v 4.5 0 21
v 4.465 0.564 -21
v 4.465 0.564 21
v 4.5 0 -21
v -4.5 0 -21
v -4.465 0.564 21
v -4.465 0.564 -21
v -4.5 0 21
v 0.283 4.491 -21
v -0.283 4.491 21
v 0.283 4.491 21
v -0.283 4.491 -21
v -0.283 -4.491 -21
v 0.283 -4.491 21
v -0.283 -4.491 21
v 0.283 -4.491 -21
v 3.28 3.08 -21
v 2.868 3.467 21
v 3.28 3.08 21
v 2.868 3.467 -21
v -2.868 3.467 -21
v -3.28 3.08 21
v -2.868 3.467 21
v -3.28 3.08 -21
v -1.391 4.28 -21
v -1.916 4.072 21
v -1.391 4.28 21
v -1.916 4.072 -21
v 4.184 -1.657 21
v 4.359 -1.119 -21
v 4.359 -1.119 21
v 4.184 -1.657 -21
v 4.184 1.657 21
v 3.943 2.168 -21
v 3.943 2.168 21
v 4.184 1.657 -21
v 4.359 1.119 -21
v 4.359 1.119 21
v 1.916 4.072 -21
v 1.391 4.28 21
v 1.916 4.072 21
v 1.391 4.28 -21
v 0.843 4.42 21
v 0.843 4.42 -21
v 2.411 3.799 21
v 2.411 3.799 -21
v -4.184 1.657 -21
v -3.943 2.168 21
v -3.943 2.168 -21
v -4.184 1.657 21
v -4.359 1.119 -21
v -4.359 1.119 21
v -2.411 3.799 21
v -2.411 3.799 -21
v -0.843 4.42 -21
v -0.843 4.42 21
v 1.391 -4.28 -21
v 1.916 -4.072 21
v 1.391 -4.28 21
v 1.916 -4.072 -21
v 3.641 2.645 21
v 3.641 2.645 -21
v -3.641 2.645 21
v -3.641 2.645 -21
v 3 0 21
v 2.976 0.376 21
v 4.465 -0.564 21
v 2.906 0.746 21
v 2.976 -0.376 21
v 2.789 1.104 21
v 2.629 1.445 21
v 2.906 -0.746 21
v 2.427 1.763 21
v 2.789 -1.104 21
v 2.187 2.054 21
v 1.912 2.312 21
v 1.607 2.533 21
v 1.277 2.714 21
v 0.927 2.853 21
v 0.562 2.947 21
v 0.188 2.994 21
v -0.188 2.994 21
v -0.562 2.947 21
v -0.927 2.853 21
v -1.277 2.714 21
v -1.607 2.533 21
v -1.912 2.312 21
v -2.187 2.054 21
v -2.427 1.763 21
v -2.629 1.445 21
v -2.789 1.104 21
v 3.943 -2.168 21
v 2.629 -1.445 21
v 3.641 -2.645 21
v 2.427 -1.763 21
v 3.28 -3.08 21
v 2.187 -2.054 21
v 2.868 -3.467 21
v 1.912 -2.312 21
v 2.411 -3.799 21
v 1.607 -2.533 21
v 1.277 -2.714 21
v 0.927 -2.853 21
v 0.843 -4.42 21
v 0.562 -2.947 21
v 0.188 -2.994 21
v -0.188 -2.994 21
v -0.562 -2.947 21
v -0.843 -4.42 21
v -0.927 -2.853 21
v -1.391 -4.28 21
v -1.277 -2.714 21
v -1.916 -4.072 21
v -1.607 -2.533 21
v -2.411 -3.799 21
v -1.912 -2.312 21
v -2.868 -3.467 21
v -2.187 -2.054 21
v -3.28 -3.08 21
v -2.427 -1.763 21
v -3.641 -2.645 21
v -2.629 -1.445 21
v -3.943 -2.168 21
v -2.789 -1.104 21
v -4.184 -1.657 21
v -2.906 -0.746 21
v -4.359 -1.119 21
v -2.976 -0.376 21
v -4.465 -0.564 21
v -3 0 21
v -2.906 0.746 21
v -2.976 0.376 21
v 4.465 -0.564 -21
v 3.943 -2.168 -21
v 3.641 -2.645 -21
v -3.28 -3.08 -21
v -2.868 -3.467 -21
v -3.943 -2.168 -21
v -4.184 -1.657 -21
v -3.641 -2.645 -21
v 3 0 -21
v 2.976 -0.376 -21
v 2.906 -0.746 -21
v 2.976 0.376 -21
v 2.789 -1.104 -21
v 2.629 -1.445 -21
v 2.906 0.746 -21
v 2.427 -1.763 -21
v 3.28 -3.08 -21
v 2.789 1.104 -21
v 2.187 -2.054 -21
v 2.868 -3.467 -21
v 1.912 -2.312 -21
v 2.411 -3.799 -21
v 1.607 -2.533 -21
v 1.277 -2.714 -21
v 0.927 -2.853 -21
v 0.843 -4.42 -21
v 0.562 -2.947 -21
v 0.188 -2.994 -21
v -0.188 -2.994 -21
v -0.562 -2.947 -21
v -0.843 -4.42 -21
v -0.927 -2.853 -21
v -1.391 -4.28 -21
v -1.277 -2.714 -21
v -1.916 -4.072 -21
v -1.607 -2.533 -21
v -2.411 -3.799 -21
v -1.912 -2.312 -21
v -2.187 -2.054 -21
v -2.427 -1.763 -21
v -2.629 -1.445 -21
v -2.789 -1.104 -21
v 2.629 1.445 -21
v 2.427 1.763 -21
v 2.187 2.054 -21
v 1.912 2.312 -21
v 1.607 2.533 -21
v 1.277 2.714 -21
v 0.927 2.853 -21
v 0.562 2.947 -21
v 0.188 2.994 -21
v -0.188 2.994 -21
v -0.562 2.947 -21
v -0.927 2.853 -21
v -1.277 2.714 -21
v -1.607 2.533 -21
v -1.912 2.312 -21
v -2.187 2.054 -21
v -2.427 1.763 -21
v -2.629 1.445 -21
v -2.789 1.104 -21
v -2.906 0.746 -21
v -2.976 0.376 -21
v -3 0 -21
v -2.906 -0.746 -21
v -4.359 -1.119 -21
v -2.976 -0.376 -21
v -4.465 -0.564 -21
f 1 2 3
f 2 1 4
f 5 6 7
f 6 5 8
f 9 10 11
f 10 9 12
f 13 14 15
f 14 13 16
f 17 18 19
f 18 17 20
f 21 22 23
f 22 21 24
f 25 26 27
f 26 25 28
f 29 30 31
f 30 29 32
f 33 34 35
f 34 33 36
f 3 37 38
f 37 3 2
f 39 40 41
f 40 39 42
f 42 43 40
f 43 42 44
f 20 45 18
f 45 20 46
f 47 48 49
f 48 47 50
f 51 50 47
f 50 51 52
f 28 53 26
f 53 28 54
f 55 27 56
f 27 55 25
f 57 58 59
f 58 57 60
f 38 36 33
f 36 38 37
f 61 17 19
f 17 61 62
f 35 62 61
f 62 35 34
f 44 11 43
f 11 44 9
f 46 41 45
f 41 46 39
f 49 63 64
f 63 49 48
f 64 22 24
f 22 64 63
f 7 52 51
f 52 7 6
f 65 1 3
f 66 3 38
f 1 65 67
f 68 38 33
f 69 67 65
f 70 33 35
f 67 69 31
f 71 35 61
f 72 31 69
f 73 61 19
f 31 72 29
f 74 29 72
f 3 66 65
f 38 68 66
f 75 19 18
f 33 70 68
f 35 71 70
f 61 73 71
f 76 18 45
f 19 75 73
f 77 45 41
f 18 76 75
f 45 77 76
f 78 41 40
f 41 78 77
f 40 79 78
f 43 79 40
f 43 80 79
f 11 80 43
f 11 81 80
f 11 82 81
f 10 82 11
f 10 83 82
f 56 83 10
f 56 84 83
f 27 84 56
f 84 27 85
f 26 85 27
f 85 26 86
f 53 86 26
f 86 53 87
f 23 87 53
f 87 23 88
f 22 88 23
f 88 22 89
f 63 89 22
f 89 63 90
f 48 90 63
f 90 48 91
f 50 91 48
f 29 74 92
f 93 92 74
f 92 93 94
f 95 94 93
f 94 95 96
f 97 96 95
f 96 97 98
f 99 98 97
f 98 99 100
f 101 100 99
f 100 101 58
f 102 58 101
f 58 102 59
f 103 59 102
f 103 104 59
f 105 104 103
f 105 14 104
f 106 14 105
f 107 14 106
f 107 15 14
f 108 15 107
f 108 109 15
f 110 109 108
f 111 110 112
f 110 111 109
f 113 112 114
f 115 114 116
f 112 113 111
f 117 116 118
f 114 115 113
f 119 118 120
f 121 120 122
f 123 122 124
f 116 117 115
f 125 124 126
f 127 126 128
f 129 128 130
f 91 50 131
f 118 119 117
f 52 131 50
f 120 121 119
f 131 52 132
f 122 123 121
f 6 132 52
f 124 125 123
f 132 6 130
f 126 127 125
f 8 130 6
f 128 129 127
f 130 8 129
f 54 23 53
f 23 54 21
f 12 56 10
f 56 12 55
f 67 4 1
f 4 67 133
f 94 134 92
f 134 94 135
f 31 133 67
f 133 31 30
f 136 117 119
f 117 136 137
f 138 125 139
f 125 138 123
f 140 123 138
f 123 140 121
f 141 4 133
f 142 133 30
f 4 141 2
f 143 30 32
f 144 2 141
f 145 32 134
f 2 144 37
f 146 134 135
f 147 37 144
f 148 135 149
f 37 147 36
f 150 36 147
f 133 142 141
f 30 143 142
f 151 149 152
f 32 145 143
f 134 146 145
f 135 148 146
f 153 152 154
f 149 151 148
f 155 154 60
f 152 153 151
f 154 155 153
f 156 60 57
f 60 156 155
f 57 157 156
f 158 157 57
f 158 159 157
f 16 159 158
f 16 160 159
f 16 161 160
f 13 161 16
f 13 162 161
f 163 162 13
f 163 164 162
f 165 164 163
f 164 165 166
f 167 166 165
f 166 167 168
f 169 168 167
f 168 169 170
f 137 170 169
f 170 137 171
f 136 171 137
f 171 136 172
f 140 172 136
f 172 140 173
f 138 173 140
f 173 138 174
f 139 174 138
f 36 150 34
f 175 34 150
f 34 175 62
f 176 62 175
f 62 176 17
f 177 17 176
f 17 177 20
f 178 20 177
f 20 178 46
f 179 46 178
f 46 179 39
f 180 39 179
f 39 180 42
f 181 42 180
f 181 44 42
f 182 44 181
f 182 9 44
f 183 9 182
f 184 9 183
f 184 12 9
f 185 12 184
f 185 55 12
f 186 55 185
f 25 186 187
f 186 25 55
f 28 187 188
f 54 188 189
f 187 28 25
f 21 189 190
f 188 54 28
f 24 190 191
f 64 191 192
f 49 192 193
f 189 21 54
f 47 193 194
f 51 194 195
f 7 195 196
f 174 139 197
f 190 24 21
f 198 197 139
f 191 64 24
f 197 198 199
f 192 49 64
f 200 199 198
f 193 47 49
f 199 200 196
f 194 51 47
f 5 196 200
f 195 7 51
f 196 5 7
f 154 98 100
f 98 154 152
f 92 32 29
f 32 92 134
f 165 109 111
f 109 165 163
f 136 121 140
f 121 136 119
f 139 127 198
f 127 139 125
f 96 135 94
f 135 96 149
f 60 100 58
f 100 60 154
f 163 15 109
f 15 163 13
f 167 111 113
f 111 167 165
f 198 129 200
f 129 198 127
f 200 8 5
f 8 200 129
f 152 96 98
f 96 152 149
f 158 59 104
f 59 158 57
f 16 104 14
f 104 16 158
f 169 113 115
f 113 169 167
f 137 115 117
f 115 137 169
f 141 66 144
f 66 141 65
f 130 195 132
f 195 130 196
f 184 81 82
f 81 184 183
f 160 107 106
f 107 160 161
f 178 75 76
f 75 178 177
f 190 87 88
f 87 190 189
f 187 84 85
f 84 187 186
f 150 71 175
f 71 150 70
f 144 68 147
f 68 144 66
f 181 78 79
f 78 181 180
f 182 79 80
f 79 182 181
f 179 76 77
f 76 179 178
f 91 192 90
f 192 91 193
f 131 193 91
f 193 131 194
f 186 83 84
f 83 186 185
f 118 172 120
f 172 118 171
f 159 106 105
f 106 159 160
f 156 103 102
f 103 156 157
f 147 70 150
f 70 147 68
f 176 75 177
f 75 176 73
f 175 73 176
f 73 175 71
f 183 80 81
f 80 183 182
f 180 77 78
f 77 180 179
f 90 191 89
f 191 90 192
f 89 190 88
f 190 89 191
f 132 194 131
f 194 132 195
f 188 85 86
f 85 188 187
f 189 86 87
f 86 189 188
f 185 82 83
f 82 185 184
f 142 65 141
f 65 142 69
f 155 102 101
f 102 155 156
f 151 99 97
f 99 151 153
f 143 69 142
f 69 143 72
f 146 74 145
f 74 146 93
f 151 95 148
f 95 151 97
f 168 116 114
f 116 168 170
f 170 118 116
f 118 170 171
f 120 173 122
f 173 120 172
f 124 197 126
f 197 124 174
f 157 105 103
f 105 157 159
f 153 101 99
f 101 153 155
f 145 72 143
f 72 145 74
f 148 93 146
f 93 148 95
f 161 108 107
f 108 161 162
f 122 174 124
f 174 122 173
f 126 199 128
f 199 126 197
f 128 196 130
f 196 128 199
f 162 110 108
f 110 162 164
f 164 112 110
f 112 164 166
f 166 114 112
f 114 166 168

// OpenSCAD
$fn = 50;


difference() {
	union() {
		translate(v = [0, 0, -21.0000000000]) {
			cylinder(h = 42, r = 4.5000000000);
		}
	}
	union() {
		translate(v = [0, 0, -100.0000000000]) {
			cylinder(h = 200, r = 3);
		}
	}
}
